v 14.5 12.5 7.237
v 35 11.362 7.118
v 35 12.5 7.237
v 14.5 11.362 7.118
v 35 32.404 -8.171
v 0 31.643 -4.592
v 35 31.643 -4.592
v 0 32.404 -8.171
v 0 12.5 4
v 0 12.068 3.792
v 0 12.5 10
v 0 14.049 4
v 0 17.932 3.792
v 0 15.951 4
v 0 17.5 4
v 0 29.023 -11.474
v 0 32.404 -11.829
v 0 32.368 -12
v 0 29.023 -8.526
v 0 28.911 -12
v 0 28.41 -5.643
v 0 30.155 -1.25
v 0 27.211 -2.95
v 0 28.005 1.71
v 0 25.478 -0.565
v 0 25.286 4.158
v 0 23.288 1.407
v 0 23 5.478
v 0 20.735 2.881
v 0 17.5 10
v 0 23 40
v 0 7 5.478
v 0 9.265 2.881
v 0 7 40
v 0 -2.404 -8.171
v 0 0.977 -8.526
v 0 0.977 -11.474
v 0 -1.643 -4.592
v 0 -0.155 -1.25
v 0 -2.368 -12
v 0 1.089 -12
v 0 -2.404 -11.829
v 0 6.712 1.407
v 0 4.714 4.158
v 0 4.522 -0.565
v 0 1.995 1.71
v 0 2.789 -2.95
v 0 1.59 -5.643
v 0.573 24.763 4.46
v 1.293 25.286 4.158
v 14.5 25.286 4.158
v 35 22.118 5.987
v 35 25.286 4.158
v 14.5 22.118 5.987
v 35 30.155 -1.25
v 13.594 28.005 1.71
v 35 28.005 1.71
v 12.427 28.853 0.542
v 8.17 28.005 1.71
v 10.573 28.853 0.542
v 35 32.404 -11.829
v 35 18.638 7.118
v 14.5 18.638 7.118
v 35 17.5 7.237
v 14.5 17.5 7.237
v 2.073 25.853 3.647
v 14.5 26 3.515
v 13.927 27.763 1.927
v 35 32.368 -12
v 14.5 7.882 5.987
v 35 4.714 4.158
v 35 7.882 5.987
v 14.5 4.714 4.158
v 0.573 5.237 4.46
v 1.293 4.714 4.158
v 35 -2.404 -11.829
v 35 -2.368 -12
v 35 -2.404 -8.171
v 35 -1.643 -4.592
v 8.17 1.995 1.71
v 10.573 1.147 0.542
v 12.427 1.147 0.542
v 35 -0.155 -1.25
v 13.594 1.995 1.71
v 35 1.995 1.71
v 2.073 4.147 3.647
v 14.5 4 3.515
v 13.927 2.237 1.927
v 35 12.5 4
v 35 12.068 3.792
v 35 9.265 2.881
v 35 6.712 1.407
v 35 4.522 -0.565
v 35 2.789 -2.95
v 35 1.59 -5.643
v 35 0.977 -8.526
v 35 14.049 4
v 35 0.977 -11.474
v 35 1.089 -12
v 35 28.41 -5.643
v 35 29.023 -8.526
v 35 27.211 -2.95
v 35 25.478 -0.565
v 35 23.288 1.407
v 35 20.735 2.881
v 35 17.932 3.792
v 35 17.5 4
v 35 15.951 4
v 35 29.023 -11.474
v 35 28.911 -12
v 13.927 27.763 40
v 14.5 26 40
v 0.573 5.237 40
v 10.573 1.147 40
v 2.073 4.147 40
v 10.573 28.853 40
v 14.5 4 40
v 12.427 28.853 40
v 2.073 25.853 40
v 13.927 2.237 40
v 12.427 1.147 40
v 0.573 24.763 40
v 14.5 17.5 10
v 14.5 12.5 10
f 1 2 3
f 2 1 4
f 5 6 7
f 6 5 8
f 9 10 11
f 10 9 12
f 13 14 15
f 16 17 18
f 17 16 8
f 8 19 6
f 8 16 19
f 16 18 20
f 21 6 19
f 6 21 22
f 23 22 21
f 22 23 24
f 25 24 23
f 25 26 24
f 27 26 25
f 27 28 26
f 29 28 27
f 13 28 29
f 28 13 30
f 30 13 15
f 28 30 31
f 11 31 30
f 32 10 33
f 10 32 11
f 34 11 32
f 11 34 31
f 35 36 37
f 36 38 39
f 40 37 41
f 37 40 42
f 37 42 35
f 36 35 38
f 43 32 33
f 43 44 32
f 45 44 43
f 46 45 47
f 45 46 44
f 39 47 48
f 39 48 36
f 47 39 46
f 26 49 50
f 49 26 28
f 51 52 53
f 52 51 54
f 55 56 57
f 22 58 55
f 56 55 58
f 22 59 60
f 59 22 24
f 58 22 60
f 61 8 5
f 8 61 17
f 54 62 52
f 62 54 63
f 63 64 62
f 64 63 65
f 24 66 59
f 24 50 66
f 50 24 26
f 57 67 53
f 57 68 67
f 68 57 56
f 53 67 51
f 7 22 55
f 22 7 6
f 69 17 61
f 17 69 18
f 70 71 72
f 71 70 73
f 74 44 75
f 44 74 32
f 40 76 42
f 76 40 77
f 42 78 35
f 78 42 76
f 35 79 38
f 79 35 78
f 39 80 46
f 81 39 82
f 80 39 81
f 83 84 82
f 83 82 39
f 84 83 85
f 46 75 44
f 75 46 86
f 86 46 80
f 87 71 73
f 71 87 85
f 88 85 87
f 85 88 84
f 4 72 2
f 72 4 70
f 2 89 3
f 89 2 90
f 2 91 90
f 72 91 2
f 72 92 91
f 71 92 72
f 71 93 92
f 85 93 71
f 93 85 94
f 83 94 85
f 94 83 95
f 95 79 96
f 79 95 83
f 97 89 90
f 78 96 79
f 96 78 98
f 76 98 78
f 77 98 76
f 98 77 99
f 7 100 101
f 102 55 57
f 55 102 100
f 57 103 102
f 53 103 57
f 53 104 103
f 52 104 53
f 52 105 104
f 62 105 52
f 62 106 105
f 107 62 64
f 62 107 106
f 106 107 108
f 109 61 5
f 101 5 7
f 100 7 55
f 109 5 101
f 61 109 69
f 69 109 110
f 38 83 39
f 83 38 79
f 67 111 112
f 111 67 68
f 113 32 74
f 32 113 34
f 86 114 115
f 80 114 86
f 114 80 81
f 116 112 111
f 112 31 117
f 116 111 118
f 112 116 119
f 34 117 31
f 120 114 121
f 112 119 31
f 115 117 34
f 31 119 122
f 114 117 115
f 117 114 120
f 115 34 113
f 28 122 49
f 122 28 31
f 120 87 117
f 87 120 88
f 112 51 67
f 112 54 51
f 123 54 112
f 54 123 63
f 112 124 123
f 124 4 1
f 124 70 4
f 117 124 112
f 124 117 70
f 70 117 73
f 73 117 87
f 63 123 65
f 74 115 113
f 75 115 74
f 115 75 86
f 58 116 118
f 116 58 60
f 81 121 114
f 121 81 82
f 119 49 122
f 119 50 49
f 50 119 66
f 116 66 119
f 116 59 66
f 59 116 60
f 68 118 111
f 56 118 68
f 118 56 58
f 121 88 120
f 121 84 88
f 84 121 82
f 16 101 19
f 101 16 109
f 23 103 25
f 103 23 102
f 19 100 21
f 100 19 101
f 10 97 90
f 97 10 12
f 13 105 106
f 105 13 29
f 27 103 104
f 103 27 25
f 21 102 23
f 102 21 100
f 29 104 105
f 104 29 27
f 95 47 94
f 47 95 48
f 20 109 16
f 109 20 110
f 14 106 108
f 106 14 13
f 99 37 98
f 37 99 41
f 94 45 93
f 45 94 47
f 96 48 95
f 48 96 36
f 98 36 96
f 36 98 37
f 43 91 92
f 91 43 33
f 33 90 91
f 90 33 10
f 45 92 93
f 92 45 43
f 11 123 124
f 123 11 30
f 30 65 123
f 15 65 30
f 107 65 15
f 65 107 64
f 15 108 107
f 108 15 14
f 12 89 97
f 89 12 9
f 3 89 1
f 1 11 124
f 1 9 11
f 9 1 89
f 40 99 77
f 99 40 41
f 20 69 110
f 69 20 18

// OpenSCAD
// could add a zip tie cutout

difference(){

  union() {

    translate([0, 15, -10])
    rotate([0, 90, 0])
    // 28.6 / 2 = 14.3
    cylinder(h=35, r=17.5);

    // key thing
    translate([3, 7, 0])
    hull() {
      cylinder(r=3,h=40);
    
      translate([0, 16, 0])
      cylinder(r=3,h=40);
  
      translate([8.5, -3, 0])
      cylinder(r=3,h=40);
    
      translate([8.5, 19, 0])
      cylinder(r=3,h=40);
    }
  }
  
  // frame cutout
  translate([-10, 15, -10])
  rotate([0, 90, 0])
  // 28.6 / 2 = 14.3
  cylinder(h=50, r=14.1);
  
  // cable cutout
  translate([-2, 12.5, 4])
  cube([60, 5, 6]);

  // cut lower half
  translate([-1, -5, -52])
  cube([40, 40, 40]);
}
